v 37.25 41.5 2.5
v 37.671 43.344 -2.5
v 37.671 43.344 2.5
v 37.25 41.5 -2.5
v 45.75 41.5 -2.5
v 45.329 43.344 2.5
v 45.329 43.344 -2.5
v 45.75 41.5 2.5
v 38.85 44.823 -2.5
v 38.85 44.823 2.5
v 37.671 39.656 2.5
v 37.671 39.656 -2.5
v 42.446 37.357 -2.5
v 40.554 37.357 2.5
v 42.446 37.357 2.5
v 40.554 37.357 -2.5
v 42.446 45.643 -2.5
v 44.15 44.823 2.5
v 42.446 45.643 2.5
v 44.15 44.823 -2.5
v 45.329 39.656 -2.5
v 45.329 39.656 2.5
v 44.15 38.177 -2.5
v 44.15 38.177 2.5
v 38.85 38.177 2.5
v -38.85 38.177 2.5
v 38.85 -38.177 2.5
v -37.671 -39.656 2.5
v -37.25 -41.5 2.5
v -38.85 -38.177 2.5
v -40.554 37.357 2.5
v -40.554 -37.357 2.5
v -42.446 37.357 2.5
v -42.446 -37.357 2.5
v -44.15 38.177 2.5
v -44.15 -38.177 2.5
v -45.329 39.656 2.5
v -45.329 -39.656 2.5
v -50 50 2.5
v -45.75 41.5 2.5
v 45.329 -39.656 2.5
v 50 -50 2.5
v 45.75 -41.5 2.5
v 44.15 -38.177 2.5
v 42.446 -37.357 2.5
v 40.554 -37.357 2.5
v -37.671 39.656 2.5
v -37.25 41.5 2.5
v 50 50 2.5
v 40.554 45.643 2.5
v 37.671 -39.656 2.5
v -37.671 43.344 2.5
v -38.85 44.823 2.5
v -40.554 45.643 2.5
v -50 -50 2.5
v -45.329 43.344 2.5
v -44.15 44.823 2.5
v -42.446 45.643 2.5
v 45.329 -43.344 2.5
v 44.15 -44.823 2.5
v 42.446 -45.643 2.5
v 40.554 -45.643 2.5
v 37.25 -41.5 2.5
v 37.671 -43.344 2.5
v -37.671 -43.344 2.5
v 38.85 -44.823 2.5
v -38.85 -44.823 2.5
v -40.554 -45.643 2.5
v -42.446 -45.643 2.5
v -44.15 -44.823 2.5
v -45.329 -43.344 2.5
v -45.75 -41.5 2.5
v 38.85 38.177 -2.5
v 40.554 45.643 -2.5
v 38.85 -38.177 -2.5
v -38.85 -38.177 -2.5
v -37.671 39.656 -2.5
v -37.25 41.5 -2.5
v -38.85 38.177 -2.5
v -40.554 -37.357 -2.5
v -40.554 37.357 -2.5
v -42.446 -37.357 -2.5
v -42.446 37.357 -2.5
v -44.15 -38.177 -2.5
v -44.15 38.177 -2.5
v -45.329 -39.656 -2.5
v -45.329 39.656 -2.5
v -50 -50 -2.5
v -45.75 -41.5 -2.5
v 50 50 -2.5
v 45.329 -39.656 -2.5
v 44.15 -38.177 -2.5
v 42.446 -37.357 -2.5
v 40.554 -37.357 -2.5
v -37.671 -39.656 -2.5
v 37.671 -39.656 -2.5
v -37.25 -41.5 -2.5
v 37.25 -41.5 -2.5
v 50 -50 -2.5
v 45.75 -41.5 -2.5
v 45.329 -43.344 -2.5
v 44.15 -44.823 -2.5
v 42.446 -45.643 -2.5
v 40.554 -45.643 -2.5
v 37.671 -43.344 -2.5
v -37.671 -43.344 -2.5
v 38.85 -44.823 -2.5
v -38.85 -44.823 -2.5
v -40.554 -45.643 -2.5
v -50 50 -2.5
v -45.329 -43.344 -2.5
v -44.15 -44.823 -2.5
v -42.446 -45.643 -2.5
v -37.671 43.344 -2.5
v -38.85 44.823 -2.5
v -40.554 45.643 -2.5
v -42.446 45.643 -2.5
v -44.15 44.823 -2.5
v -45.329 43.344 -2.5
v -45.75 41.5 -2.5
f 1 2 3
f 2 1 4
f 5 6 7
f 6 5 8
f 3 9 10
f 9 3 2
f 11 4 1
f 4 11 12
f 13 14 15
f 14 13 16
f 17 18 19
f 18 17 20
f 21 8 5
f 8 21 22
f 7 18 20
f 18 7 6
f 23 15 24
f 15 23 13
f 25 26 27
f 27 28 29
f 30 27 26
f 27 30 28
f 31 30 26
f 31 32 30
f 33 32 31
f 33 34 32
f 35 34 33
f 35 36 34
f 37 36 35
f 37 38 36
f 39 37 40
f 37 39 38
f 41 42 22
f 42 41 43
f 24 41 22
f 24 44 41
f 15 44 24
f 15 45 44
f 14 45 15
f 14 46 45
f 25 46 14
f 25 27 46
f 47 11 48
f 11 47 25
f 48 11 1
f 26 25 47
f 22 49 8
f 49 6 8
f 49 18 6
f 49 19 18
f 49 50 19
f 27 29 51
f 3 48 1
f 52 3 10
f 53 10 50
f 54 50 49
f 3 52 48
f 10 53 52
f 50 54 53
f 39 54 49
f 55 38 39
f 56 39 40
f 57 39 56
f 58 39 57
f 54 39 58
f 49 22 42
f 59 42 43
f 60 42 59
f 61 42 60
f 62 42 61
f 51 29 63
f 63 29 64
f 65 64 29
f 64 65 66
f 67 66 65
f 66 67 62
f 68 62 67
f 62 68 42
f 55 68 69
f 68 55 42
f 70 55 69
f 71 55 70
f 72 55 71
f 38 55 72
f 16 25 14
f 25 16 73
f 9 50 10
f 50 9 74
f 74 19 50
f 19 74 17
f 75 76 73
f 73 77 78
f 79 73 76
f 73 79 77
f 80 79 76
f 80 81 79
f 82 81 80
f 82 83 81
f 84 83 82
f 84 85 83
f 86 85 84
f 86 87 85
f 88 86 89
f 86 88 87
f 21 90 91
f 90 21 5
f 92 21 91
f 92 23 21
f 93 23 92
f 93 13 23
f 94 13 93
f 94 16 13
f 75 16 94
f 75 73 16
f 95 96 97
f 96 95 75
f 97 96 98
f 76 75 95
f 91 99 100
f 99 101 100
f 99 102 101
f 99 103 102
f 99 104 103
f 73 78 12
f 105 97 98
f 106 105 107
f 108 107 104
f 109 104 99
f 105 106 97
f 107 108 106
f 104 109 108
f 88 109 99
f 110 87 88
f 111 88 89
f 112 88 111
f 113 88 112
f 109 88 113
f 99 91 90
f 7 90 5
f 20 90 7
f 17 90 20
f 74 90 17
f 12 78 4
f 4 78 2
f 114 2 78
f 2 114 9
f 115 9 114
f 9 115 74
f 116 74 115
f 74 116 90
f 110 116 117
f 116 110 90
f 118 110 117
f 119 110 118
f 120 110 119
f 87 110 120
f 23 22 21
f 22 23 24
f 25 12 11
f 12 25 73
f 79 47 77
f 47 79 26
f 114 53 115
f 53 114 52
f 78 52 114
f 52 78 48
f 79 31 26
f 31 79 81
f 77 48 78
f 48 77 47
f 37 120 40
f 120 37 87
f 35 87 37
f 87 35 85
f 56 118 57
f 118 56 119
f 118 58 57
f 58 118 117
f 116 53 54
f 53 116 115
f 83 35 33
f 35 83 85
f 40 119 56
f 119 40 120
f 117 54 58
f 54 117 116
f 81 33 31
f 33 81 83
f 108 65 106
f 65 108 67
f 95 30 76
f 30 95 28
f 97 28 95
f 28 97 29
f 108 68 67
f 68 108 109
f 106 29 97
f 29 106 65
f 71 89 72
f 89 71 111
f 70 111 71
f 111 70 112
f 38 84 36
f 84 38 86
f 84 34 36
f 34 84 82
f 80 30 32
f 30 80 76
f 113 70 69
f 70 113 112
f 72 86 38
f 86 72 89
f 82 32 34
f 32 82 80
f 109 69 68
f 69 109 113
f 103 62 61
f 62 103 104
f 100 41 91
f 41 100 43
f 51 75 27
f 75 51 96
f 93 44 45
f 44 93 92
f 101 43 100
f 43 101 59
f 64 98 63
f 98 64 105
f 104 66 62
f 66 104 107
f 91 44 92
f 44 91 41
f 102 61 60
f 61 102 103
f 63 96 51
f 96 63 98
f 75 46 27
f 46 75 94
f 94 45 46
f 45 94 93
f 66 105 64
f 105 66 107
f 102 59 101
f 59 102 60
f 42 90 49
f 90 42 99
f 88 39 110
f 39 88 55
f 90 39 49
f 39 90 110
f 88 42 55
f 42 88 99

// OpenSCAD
// Generated by SolidPython 1.1.3 on 2023-10-16 12:08:39


difference() {
	cube(center = true, size = [100, 100, 5]);
	union() {
		translate(v = [41.5000000000, 41.5000000000]) {
			cylinder(center = true, h = 5, r = 4.2500000000);
		}
		translate(v = [-41.5000000000, 41.5000000000]) {
			cylinder(center = true, h = 5, r = 4.2500000000);
		}
		translate(v = [-41.5000000000, -41.5000000000]) {
			cylinder(center = true, h = 5, r = 4.2500000000);
		}
		translate(v = [41.5000000000, -41.5000000000]) {
			cylinder(center = true, h = 5, r = 4.2500000000);
		}
	}
}
/***********************************************
*********      SolidPython code:      **********
************************************************
 
import solid
import numbers
import pudb
from solid.utils import *
import viewscad
import subprocess
import os
import os.path as osp
import math
import sys

chamfer_extrude=solid.import_scad("./chamfer_extrude.scad")
chamfer_extrude=chamfer_extrude.chamfer_extrude
r = viewscad.Renderer(width=800, height=800)

def debug(model,f_name,path="/home/ts/code/projects/mfd/designs/debug"):
    solid.scad_render_to_file(model,osp.join(path,f_name)+".scad")
#generate position list of wells using offset from center
wells_pos_from_center_4 = lambda offset: [[-offset,offset],
                                        [offset, offset],
                                        [-offset, -offset],
                                        [offset, -offset]]
#wells_pos_from_center_2 = lambda offset: [[0,offset],
#                                        [0, -offset]]
wells_pos_from_center_2 = lambda offset: [[offset,0],
                                        [-offset,0]]

def make_well(dims,shape=None,height=None,dxf=False):
    def circle_cylinder():
        if dxf or (height is None):
            well = solid.circle(r=dims, segments=64)
        else:
            well = solid.cylinder(r=dims, h=height, segments=64, center = True)
        return well
    if dims is None:
        sys.exit("radius needs to be a number")
    if isinstance(dims, numbers.Number):
        well =circle_cylinder()
    elif len(dims)==1:
        if isinstance(dims[1], numbers.Number):
            well =circle_cylinder()
        else:
            sys.exit("radius needs to be a number")
    elif len(dims)==2:
        well = solid.square(dims,center = True)
    elif len(dims)==3:
        well = solid.cube(dims, center = True)
    return well

def wells_top_bottom(center_gap,device_dims=None,shape=None,height=None, positions = None, dxf = False):
    well_shape = make_well(device_dims,shape=shape,height=height,dxf=dxf)
    wells = []
    if positions is None:
        offset = radius+radius/2.0
        positions = wells_pos_from_center_2(offset)
    if dxf or (height is None):
        height = 0
    for position in positions:
        if dxf:
            wells.append(solid.translate([position[0],position[1]])(well_shape))
        else:
            wells.append(solid.translate([position[0],position[1],height/2.0])(well_shape))
    return  union()(*wells)

#place wells in four corners 
def four_corner(radius,height=None, positions = None, dxf = False):
    #if well pos not specified set
    #to equally spaced by half radius
    if positions is None:
        offset = radius+radius/2.0
        positions = wells_pos_from_center_4(offset)
    if dxf or (height is None):
        height = 0
    #make wells at positions with specified radius and height
    wells = []
    for position in positions:
        #make circle if making dxf
        if dxf:
            well_shape = solid.circle(r=radius, segments=64)
            well_shape = solid.translate([position[0],position[1]])(well_shape)
        #if stl make cylinder
        else:
            well_shape = solid.cylinder(r=radius, h=height, segments=64, center = True)
            well_shape = solid.translate([position[0],position[1],height/2.0])(well_shape)
        wells.append(well_shape)
    return  union()(*wells)

#generate channels 
def make_channels(length,width,height=0,num_chans=1,max_chans=None,spacing=None, dxf = False,
                  rotate_channels=False):
    if dxf or (height is None):
        height = 0
    #if channel gap not defined, is equal to
    if spacing is None: spacing = width
    #calculate number of channels if fitting max num within given width
    if not max_chans is None:
        import math
        num_chans = math.floor((max_chans-spacing)/(width+spacing))
    #get total width of channel section  
    total_width = (width*num_chans)+(spacing*(num_chans-1))

    #make template channel
    #if rotate_channels: width, length = length, width
    if dxf:
        channel_t = solid.square([length,width],center = True)
    else:
        channel_t = solid.cube([length,width,height], center = True)

    #if number channels is even, offset the first channel to center its gap
    if num_chans % 2 == 0: centering = -(width/2.0+spacing/2.0)
    else: centering = 0
    #move template channel up to align bottom at z = 0 
    #and offset center if necessary
    if dxf:
        channel_t = solid.translate([0,centering])(channel_t)
    else:
        channel_t = solid.translate([0,centering,height/2.0])(channel_t)

    #if rotate_channels: length,width = width,length
    #start making the channels
    channels = []
    for i in range(num_chans):
        #if i=0 there is no translation
        #if i=1, we make the first channel adjacent to second
        direction = i

        #if i>=1, we add channels alternating left and right
        if i >= 1:
            direction = -(i/2.0)
            if i % 2 == 1: direction = (-direction)+0.5
                
        #make channel at right position and add it to channel list
        translation_coords = [0,direction*(width+spacing)]
        #if rotate_channels: translation_coords = [direction*(width+spacing),0]
        if dxf:
            channel = solid.translate(translation_coords)(channel_t)
        else:
            channel = solid.translate([*translation_coords,0])(channel_t)
        channels.append(channel)
    
    #group all channels as one object
    channels = union()(*channels)
    #compute the x,y,z dimensions in order to pass as arguments 
    #for construction of other parts of device (such as the chambers)
    measurements = {'x':(length/2.0,-length/2.0),
                    'y':(total_width/2.0,-total_width/2.0)}
    if not dxf:
        measurements['z'] = (height,0)
    if rotate_channels:
        channels = solid.rotate(90)(channels)
        measurements['x'],measurements['y']=measurements['y'],measurements['x']
    return channels,measurements

def make_chambers(msrs,height=None,extra=0,len_until=None,width=None, dxf = False):
    #computes x,y,z length
    total = lambda x : abs(x[0]) + abs(x[1])
    
    #if specific height if specified
    #otherwise use same height as channels
    if dxf:
        pass
    elif not height is None:
        msrs['z'] = (height,0)
    else:
        msrs['z'] = (0,0)
        
    #make copy of measurements from channels to modify chamber dimensions 
    #and add length to chambers as specified
    chamber_dims = msrs.copy()
    #calculate length of chamber to reach specified offset
    if not len_until is None:
        chamber_len = len_until-(msrs['x'][0])
    #or add specified length to channel length (if not specified, adds 0)
    else:
        chamber_len = msrs['x'][0]+extra
    #set the chamber length based 
    chamber_dims['x'] = (chamber_len/2.0,-(chamber_len/2.0))
    #compute final dimensions of chamber
    if not width is None:
        chamber_dims['y'] = (width/2.0,-width/2.0)
    chamber_dims = [total(size) for size in chamber_dims.values()]
        
    #calculate chamber translation offset to place adjacent to channels
    chamber_trslt = msrs['x'][0]+(chamber_len/2.0)
    #compute chamber translation coordinates to align with channels
    #x = 1 moves chamber above channels
    #x = -1 moves chamber below channels
    if dxf:
        trslt = lambda x : [x*(chamber_trslt),0]
    else:
        trslt = lambda x : [x*(chamber_trslt),0,msrs['z'][0]/2.0]
    
    #function to make chamber at top or at bottom 
    if dxf:
        move = lambda x : solid.translate(trslt(x))(solid.square(chamber_dims, center = True) )
    else:
        move = lambda x : solid.translate(trslt(x))(solid.cube(chamber_dims,center = True))
    #make top and bottom chambers and return them as grouped
    top = move(1)
    bottom = move(-1)
    #chambers=solid.rotate(90)(solid.union()(top,bottom))
    chambers=(solid.union()(top,bottom))

    return chambers

#create alignment features 
def alignment_features(unit,dims,grid_size, mask_size = None, alignment = "hollow", units_from_center = (2.5,2.5), corner_len=None):
    width = grid_size[0]*dims[0]
    length = grid_size[1]*dims[1]
    if mask_size is None and corner_len is None:
        corner_len = (dims[0] + dims[1]) /2 / 8
    corner = lambda thickness_div : solid.union()( solid.square([corner_len,corner_len/thickness_div],center=False), solid.square([corner_len/thickness_div,corner_len],center=False) )
    
    def make_full(thickness_div):
        thickness = corner_len/thickness_div
        tr = solid.translate([0, 0, 0 ])(solid.rotate(180)(corner(thickness_div)))
        tr = solid.translate([thickness/2,thickness/2,0])(tr)
        bl = solid.translate([0, 0, 0 ])(solid.rotate(0)(corner(thickness_div)))
        bl = solid.translate([-thickness/2,-thickness/2,0])(bl)
        return solid.union()(tr,bl)
    
    def make_hollow(thickness_div):
        thickness = corner_len/(thickness_div/2)
        inner = make_full(thickness_div)
        outer = make_full(thickness_div/2)
        hollow = outer - inner 
        return hollow
    
    center = (width /2 , length/2)
    mask_pos = lambda x,y : (center[0] + x*(float(units_from_center[0])*dims[0]), center[1] + y*(float(units_from_center[1])*dims[1]))
    positions = []
    positions.append(mask_pos(1,0))
    positions.append(mask_pos(0,1))
    positions.append(mask_pos(-1,0))
    positions.append(mask_pos(0,-1))
    make_mask = lambda mtype : make_hollow(8) if mtype == "hollow" else make_full(8)
    masks = [ solid.translate([*position,0])(make_mask(alignment)) for position in positions]
    
    solid.scad_render_to_file(solid.union()(*masks),"./designs/open_chamber/masks.scad")
    #return unit - solid.union()(*masks)
    return solid.union()(*masks,unit)

def create_outline(thickness, array, dims, grid_size,):
    width = grid_size[0]*dims[0] + thickness *2
    length = grid_size[1]*dims[1] + thickness *2
    outer = solid.translate([-thickness, -thickness,0])(solid.square([width, length]))
    return outer-array

def create_wall(wall_thickness, outline_thickness, dims, grid_size, wall_height = 2000, dxf = False):
    inner_width = grid_size[0]*dims[0] + outline_thickness *2
    inner_length = grid_size[1]*dims[1] + outline_thickness *2
    outer_width = inner_width + wall_thickness * 2
    outer_length = inner_length + wall_thickness * 2
    outer_pos_x = -outline_thickness-wall_thickness
    outer_pos_y = -outline_thickness-wall_thickness
    inner_pos_x = -outline_thickness
    inner_pos_y = -outline_thickness
    if dxf:
        inner_wall = solid.translate([inner_pos_x,
                                      inner_pos_y,
                                      0])(solid.square([inner_width, inner_length]))
        outer_wall = solid.translate([outer_pos_x,
                                      outer_pos_y,
                                      0])(solid.square([outer_width, outer_length]))

        return outer_wall-inner_wall
    else:
        inner_wall = solid.translate([inner_pos_x,
                                      inner_pos_y,
                                      0])(solid.cube([inner_width, inner_length,wall_height]))
        outer_wall = solid.translate([outer_pos_x,
                                      outer_pos_y,
                                      0])(solid.cube([outer_width, outer_length,wall_height]))

        return outer_wall-inner_wall, {'wall_height': wall_height,
                                       'wall_thickness': wall_thickness,
                                       'inner_width':inner_width,
                                       'inner_length': inner_length,
                                       'outer_width': outer_width,
                                       'outer_length': outer_length,
                                       'outer_pos_x' : outer_pos_x,
                                       'outer_pos_y' : outer_pos_y,
                                       'inner_pos_x' : inner_pos_x,
                                       'inner_pos_y' : inner_pos_y}

def create_thicker_wall(wall_thickness, outer_wall_offset, wall_dims, dims, grid_size, height_start = .2, height_end=2, dxf = False):
    addon_wall,thicker_wall_dims = create_wall(wall_thickness, outer_wall_offset, dims, grid_size, wall_height=height_end-height_start, dxf = False)
    addon_wall = solid.translate([0,0,height_start])(addon_wall)

    thicker_wall_dims['wall_height'] = height_end
    thicker_wall_dims['wall_thickness'] = wall_dims['wall_thickness'] + wall_thickness
    return addon_wall, thicker_wall_dims
 
def add_lock_to_wall(wall,wall_dims,y_offset = 0,cut_ratio=0.7,L_length=3, gap_ratio=0.05, axis="x",width_ratio=1/2):
    # Makes L shape
    def make_L(max_length,length_thickness,max_width,width_thickness,height,y_offset):
        length = solid.cube([max_length,length_thickness,height])
        width = solid.cube([width_thickness,max_width,height])
        width = solid.translate([max_length-(width_thickness),0,0])(width)
        L = solid.union()(width,length)
        debug(L,"L")
        if axis == "x":
            L = solid.rotate(-90)(L)
            L = solid.translate([0,max_length,0])(L)
        else:
            L = solid.rotate(-180)(L)
            L = solid.translate([max_length,max_width,0])(L)
        return solid.translate([0,0,y_offset])(L)
    
    lock_length = L_length
    lock_width = wall_dims['wall_thickness']*width_ratio
    lock_length_thickness = lock_width/2
    lock_width_thickness = lock_width/2
    L_lock = make_L(lock_length,lock_length_thickness,lock_width,lock_width_thickness, wall_dims['wall_height']-y_offset, y_offset)
    
    margin_space = lock_length - lock_length*(1-gap_ratio)
    key_length = lock_length-margin_space
    key_length_thickness = lock_length_thickness-(margin_space*2)
    key_width = lock_width-(margin_space*2)
    key_width_thickness = lock_width_thickness-(margin_space*2)
    L_key = make_L(key_length,key_length_thickness,key_width,key_width_thickness, wall_dims['wall_height']-y_offset, y_offset)
    L_key = solid.translate([margin_space,margin_space,0])(L_key)
    L = solid.union()(L_lock,L_key)
    debug(L,"L")
    
    #Make cube to be used as negative to split frame in a half
    #Can choose if making left or right negative, specify ratio of split
    def make_negative(right,cut_ratio):
        if axis == "x":
            if right:
                length = wall_dims['outer_length']*(1-cut_ratio)
                pos_x = wall_dims['outer_pos_x']+(wall_dims['outer_length']*cut_ratio)
            else:
                length = wall_dims['outer_length']*(cut_ratio)
                pos_x = wall_dims['outer_pos_x'] 
            negative = solid.cube([wall_dims['outer_width'],length, wall_dims['wall_height']])
            negative = solid.translate([wall_dims['outer_pos_y'],pos_x,0])(negative)
        else:
            if right:
                length = wall_dims['outer_width']*(1-cut_ratio)
                pos_x = wall_dims['outer_pos_y']+(wall_dims['outer_width']*cut_ratio)
            else:
                length = wall_dims['outer_width']*(cut_ratio)
                pos_x = wall_dims['outer_pos_y'] 
            negative = solid.cube([length,wall_dims['outer_length'], wall_dims['wall_height']])
            negative = solid.translate([pos_x,wall_dims['outer_pos_x'],0])(negative)
        return negative, pos_x, length 
                      
    #Make negatives
    negative_right, right_half_pos_x, right_half_length = make_negative(True,cut_ratio)
    negative_left, left_half_pos_x, right_half_length = make_negative(False,cut_ratio)
    #Make halves
    left_half = solid.difference()(wall,negative_right)
    right_half = solid.difference()(wall,negative_left)
    def place_L(L, L_length,L_width):
        #Place L on top wall       
        offset_to_center = (wall_dims['wall_thickness']-L_width)/2
        if axis == "x":
            y_pos_top = (wall_dims['outer_pos_y'] +
                    wall_dims['outer_width'] - 
                    L_width - offset_to_center)
            top_L = solid.translate([y_pos_top,
                                     right_half_pos_x-(L_length),
                                     0])(L)
            #Place L on bottom wall       
            y_pos_bottom = wall_dims['outer_pos_y']+offset_to_center
            bottom_L = solid.translate([y_pos_bottom,
                                        right_half_pos_x-L_length,
                                        0])(L)
        else:
            y_pos_top = (wall_dims['outer_pos_x'] +
                    wall_dims['outer_length'] -
                    (L_width+offset_to_center))
            top_L = solid.translate([right_half_pos_x-L_length,
                                     y_pos_top,
                                     0])(L)
            #Place L on bottom wall       
            y_pos_bottom = wall_dims['outer_pos_y']+offset_to_center
            bottom_L = solid.translate([right_half_pos_x-L_length,
                                        y_pos_bottom,
                                        0])(L)
        return bottom_L, top_L
    #Make complimentary L pieces through union and differences
    #Make Lock
    bottom_L_lock, top_L_lock = place_L(L_lock,L_length,lock_width)
    left_half = solid.difference()(left_half,bottom_L_lock)
    left_half = solid.difference()(left_half,top_L_lock)
    #Make Key
    bottom_L_key, top_L_key = place_L(L_key,L_length,lock_width)
    right_half = solid.union()(right_half,bottom_L_key)
    right_half = solid.union()(right_half,top_L_key)
    return left_half, right_half


#build a row x col grid of containment units
def make_unit_array(unit,dims,grid_size, dxf = False, alignment = None, mask_size = None,
                    units_from_center = None,alignment_offset=None, alignment_mark_size=1):
    units = []
    for col in range(grid_size[1]):
        for row in range(grid_size[0]):
            if dxf:
                units.append(solid.translate([row*dims[0],col*dims[1]])(unit))
            else:
                units.append(solid.translate([row*dims[0],col*dims[1],dims[2]/2.0])(unit))
    array = solid.union()(*units)
    if (not alignment is None) and dxf:
        if not alignment_offset is None:
            array = solid.translate([alignment_offset[0],alignment_offset[1]])(array)
        array = alignment_features(array,dims, grid_size, alignment = alignment, mask_size = None, units_from_center = units_from_center,corner_len=alignment_mark_size)
        if not alignment_offset is None:
            array = solid.translate([-alignment_offset[0],-alignment_offset[1]])(array)
    return array


def make_taylor(wells_pos = wells_pos_from_center_4(2.25), well_rad = 1.5 ,
                well_height = 2, chan_w = 0.01, chan_l = 1, chan_h = 0.010 ,
                chan_gap = 0.040, max_chans = None,num_chans=100, chamber_height  = 0.100,
                columns = 1, rows = 1, chamber_len_until=2.25, add_channels = True, add_wells = True, 
                add_chambers = True, save_path = "./", alignment = None, units_from_center = 2,
                mask_size = None, render_stl = False, outline_thickness = 0.050, dxf = True,
                wall_height = 15, wall_thickness = 0.95, casing_x=9, casing_y=9, casing_z=0,rotate_units=0):

    dims = [casing_x, casing_y, casing_z]
    wells = four_corner(well_rad,well_height, dxf = dxf, positions = wells_pos)
    debug(wells,"wells")
    channels, msrs = make_channels(chan_l,chan_w,chan_h,dxf=dxf, spacing = chan_gap, max_chans=max_chans,num_chans=num_chans)
    debug(channels,"channels")
    chambers = make_chambers(msrs,dxf = dxf, height=chamber_height,len_until=chamber_len_until)
    debug(chambers,"chambers")

    #add together and render
    device_parts = []
    if add_channels:
        device_parts.append(channels)
    if add_wells:
        device_parts.append(wells)
    if add_chambers:
        device_parts.append(chambers)
    device=union()(*device_parts)
    device = rotate(rotate_units)(device)

    device=solid.translate([dims[0]/2.0,dims[1]/2.0,0])(device)
    channels = rotate(rotate_units)(channels)
    channels=solid.translate([dims[0]/2,dims[1]/2,0])(channels)
    chambers_wells = union()(wells,chambers)
    chambers_wells = rotate(rotate_units)(chambers_wells)
    chambers_wells=solid.translate([dims[0]/2,dims[1]/2,0])(chambers_wells)

    file_name = str(rows)+'x'+str(columns)+'_units_'
    grid_size = [rows,columns]

    if alignment:
        alignment="full"
    device = make_unit_array(device,dims,grid_size, dxf=dxf, alignment = alignment,
                                 units_from_center = units_from_center)
    channels = make_unit_array(channels,dims,grid_size, dxf=dxf, alignment = alignment,
                                 units_from_center = units_from_center)
    if alignment=="full":
        alignment="hollow"

    chambers_wells = make_unit_array(chambers_wells,dims,grid_size, dxf=dxf, alignment = alignment,
                                 units_from_center =units_from_center)

    def save_model(model,prefix):
        model_fname = os.path.abspath(save_path+prefix+"_"+file_name+".scad")
        solid.scad_render_to_file(model,model_fname)
        return model_fname

    wells_fname = save_model(wells,"wells")
    channels_fname = save_model(channels,"channels")
    device_fname = save_model(device,"device")
    chambers_wells_fname = save_model(chambers_wells,"chambers_wells")
    return (chambers_wells,chambers_wells_fname), (channels,channels_fname), (device,device_fname)

def make_device(design='open',rows=8,columns=6,wells_pos = 4.5,well_offset=3.2, well_rad=3.2,well_height=0.1,
                chan_l=1,chan_w=0.01,chan_h=0.01,chan_gap=0.015,num_chans=101,dxf=True,save_path="./designs/open_chamber/",
                casing_x=9.0,casing_y=18.0,casing_z=0,rotate_units=90,units_from_center=(3,1),chamber_len_until=4.5,
                chamber_width=None,alignment=True, add_wells=True, add_channels=True,add_chambers=True):

    dims = [casing_x, casing_y, casing_z]
    if design == "open":
        wells_pos=wells_pos_from_center_2(wells_pos)
        wells = wells_top_bottom(well_offset*2,device_dims=well_rad,height=well_height, dxf = dxf, positions = wells_pos)
    elif design == "closed":
        wells_pos=wells_pos_from_center_4(wells_pos)
        debug(wells,"wells")
        wells = four_corner(well_offset,well_heightdevice_dims=well_rad, dxf = dxf, positions = wells_pos)
    else:
        print(design+" is not a valid design.\n Choose valid design: 'open' or 'closed'")
        exit()
    wells = rotate(rotate_units)(wells)
    wells=solid.translate([dims[0]/2,dims[1]/2,0])(wells)
    debug(wells,"wells")

    channels, msrs = make_channels(chan_l,chan_w,chan_h,dxf=dxf, spacing = chan_gap, num_chans=num_chans,rotate_channels=False)
    channels = rotate(rotate_units)(channels)
    channels=solid.translate([dims[0]/2,dims[1]/2,0])(channels)

    chambers=make_chambers(msrs,height=None,extra=0,len_until=chamber_len_until, width=chamber_width,dxf = dxf)
    chambers = rotate(rotate_units)(chambers)
    chambers=solid.translate([dims[0]/2,dims[1]/2,0])(chambers)

    device_parts = []
    if add_channels:
        device_parts.append(channels)
    if add_wells:
        device_parts.append(wells)
    if add_chambers:
        device_parts.append(chambers)
    device = union()(*device_parts)
    #device = rotate(rotate_units)(device)
    #device=solid.translate([dims[0]/2.0,dims[1]/2.0,0])(device)

    chambers_wells = []
    if add_chambers:
        chambers_wells.append(chambers)
    if add_wells:
        chambers_wells.append(wells)
    chambers_wells = union()(*chambers_wells)
    #chambers_wells = union()(wells,chambers)
    #chambers_wells = rotate(rotate_units)(chambers_wells)
    #chambers_wells=solid.translate([dims[0]/2,dims[1]/2,0])(chambers_wells)

    file_name = str(rows)+'x'+str(columns)+'_units_'

    grid_size = [rows,columns]
    if alignment:
        alignment="full"
    device = make_unit_array(device,dims,grid_size, dxf=dxf, alignment = alignment,
                                 units_from_center = units_from_center)
    channels = make_unit_array(channels,dims,grid_size, dxf=dxf, alignment = alignment,
                                 units_from_center = units_from_center)
    if alignment=="full":
        alignment="hollow"

    chambers_wells = make_unit_array(chambers_wells,dims,grid_size, dxf=dxf, alignment = alignment,
                                 units_from_center =units_from_center)

    def save_model(model,prefix):
        model_fname = os.path.abspath(save_path+prefix+"_"+file_name+".scad")
        solid.scad_render_to_file(model,model_fname)
        return model_fname

    wells_fname = save_model(wells,"wells")
    channels_fname = save_model(channels,"channels")
    device_fname = save_model(device,"device")
    chambers_wells_fname = save_model(chambers_wells,"chambers_wells")
    return (chambers_wells,chambers_wells_fname), (channels,channels_fname), (device,device_fname)


def make_open_chamber(rows=8,columns=6,wells_pos = wells_pos_from_center_2(4.5), well_rad=3.2,well_height=0.1,
                      chan_l=1,chan_w=0.01,chan_h=0.01,chan_gap=0.015,num_chans=101,dxf=True,save_path="./designs/open_chamber/",
                      casing_x=9.0,casing_y=18.0,casing_z=0,rotate_units=90,units_from_center=(3,1),chamber_len_until=4.5,
                      chamber_width=None,alignment=True, add_wells=True, add_channels=True,add_chambers=True):

    dims = [casing_x, casing_y, casing_z]
    wells = wells_top_bottom(well_rad,height=well_height, dxf = dxf, positions = wells_pos)
    channels, msrs = make_channels(chan_l,chan_w,chan_h,dxf=dxf, spacing = chan_gap, num_chans=num_chans,rotate_channels=False)
    chambers=make_chambers(msrs,height=None,extra=0,len_until=chamber_len_until, width=chamber_width,dxf = dxf)
    debug(chambers,"chambers")
    device_parts = []
    if add_channels:
        device_parts.append(channels)
    if add_wells:
        device_parts.append(wells)
    if add_chambers:
        device_parts.append(chambers)
    device = union()(*device_parts)
    device = rotate(rotate_units)(device)
    device=solid.translate([dims[0]/2.0,dims[1]/2.0,0])(device)
    channels = rotate(rotate_units)(channels)
    channels=solid.translate([dims[0]/2,dims[1]/2,0])(channels)
    chambers_wells = union()(wells,chambers)
    chambers_wells = rotate(rotate_units)(chambers_wells)
    chambers_wells=solid.translate([dims[0]/2,dims[1]/2,0])(chambers_wells)

    file_name = str(rows)+'x'+str(columns)+'_units_'

    grid_size = [rows,columns]
    if alignment:
        alignment="full"
    device = make_unit_array(device,dims,grid_size, dxf=dxf, alignment = alignment,
                                 units_from_center = units_from_center)
    channels = make_unit_array(channels,dims,grid_size, dxf=dxf, alignment = alignment,
                                 units_from_center = units_from_center)
    if alignment=="full":
        alignment="hollow"

    chambers_wells = make_unit_array(chambers_wells,dims,grid_size, dxf=dxf, alignment = alignment,
                                 units_from_center =units_from_center)

    def save_model(model,prefix):
        model_fname = os.path.abspath(save_path+prefix+"_"+file_name+".scad")
        solid.scad_render_to_file(model,model_fname)
        return model_fname

    wells_fname = save_model(wells,"wells")
    channels_fname = save_model(channels,"channels")
    device_fname = save_model(device,"device")
    chambers_wells_fname = save_model(chambers_wells,"chambers_wells")
    return (chambers_wells,chambers_wells_fname), (channels,channels_fname), (device,device_fname)

def to_dxf(scad_path):
    dxf_path = scad_path.replace(".scad",".dxf")
    subprocess.call(["openscad", "-o", dxf_path, scad_path])
    import ezdxf
    temp_dxf = ezdxf.readfile(dxf_path)
    temp_dxf.saveas(dxf_path)

#def make_walls(diameter,thickness,grid_size,dims,height=20,segments=256,make_inner=True):
#    wafer_wall_out = solid.cylinder(r=diameter/2,h=height, segments=segments)
#    wafer_wall_in = solid.cylinder(r=(diameter/2-thickness),h=height, segments=segments)
#    wafer_wall = solid.difference()(wafer_wall_out,wafer_wall_in)
#    wafer_wall = solid.translate([grid_size[1]*dims[1]/2.0,grid_size[0]*dims[0]/2.0])(wafer_wall)
#
#    vertical_wall_length = grid_size[1]*dims[1]
#    horizontal_wall_length = grid_size[0]*dims[0]
#    vertical_wall = solid.cube([vertical_wall_length,thickness,height],center = True)
#    vertical_wall = solid.translate([vertical_wall_length/2,0,height/2])(vertical_wall)
#    horizontal_wall = solid.cube([thickness,horizontal_wall_length,height],center = True)
#    horizontal_wall = solid.translate([0,vertical_wall_length/2,height/2])(horizontal_wall)
#    walls = []
#    walls.append(horizontal_wall)
#    walls.append(vertical_wall)
#    for col in range(grid_size[1]):
#        if col == grid_size[1]-1: 
#            walls.append(solid.translate([0,(col+1)*dims[1]])(vertical_wall))
#        elif col > 0 and col < grid_size[1]-1 and make_inner==True:
#            walls.append(solid.translate([0,(col+1)*dims[1]])(vertical_wall))
#    for row in range(grid_size[0]):
#        if row == grid_size[0]-1: 
#            walls.append(solid.translate([(row+1)*dims[0],0])(horizontal_wall))
#        elif row > 0 and row < grid_size[0]-1 and make_inner==True:
#            walls.append(solid.translate([(row+1)*dims[0],0])(horizontal_wall))
#    walls = union()(*walls)
#    wafer_walls = union()(walls,wafer_wall)
#    return walls,wafer_wall,wafer_walls

def make_walls(diameter,thickness,grid_size,dims,height=20,segments=256,make_inner=True,padx=0,pady=0):
    wafer_wall_out = solid.cylinder(r=diameter/2,h=height, segments=segments)
    wafer_wall_in = solid.cylinder(r=(diameter/2-thickness),h=height, segments=segments)
    wafer_wall = solid.difference()(wafer_wall_out,wafer_wall_in)
    wafer_wall = solid.translate([grid_size[1]*dims[1]/2.0,grid_size[0]*dims[0]/2.0])(wafer_wall)

    vertical_wall_length = grid_size[0]*dims[0]+padx
    horizontal_wall_length = grid_size[1]*dims[1]+pady
    vertical_wall = solid.cube([vertical_wall_length,thickness,height],center = True)
    vertical_wall = solid.translate([vertical_wall_length/2-pady/2,-padx/2,height/2])(vertical_wall)
    horizontal_wall = solid.cube([thickness,horizontal_wall_length,height],center = True)
    horizontal_wall = solid.translate([-pady/2,horizontal_wall_length/2-padx/2,height/2])(horizontal_wall)
    walls = []
    walls.append(horizontal_wall)
    walls.append(vertical_wall)
    for col in range(grid_size[1]):
        if col == grid_size[1]-1: 
            walls.append(solid.translate([0,(col+1)*dims[1]+pady])(vertical_wall))
        elif col > 0 and col < grid_size[1]-1 and make_inner==True:
            walls.append(solid.translate([0,(col+1)*dims[1]])(vertical_wall))
    for row in range(grid_size[0]):
        if row == grid_size[0]-1: 
            walls.append(solid.translate([(row+1)*dims[0]+padx,0])(horizontal_wall))
        elif row > 0 and row < grid_size[0]-1 and make_inner==True:
            walls.append(solid.translate([(row+1)*dims[0],0])(horizontal_wall))
    walls = union()(*walls)
    wafer_walls = union()(walls,wafer_wall)
    return walls,wafer_wall,wafer_walls

def save_model(model,base_path,base_name,dxf=True):
    if not os.path.exists(base_path):
        os.makedirs(base_path)
    dxf_path=osp.join(base_path,base_name+".scad")
    solid.scad_render_to_file(model,osp.join(dxf_path))
    if dxf:
        to_dxf(dxf_path)

def make_wafer(diameter,flat_len,thickness):
    wafer = solid.cylinder(r1=diameter/2,r2=diameter/2,h=thickness,segments=512,)()
    x_start_flat=(flat_len/2)
    y_start_flat = math.sqrt(((diameter/2)**2) - (x_start_flat**2) )
    height_delete_flat=diameter/2-y_start_flat
    flat_delete = solid.cube([flat_len,height_delete_flat,thickness],center=False)()
    flat_delete = solid.translate([-flat_len/2,y_start_flat,0])(flat_delete)
    wafer = solid.difference()(wafer,flat_delete)
    wafer = solid.rotate(90)(wafer)
    return wafer

def add_wafer_to_mask(wafer_size,flat_len,mask,grid_size,dims,wafer_line_thickness=0.1,outer_mask_thickness=5,alignment_offset=None):
    def make_wafer_mask(wafer_size,flat_len):
        wafer_mask = make_wafer(wafer_size,flat_len,1)
        wafer_mask = solid.projection()(wafer_mask)
        wafer_mask = solid.translate([grid_size[0]*dims[0]/2.0,grid_size[1]*dims[1]/2.0])(wafer_mask)
        if not alignment_offset is None:
            wafer_mask = solid.translate([-alignment_offset[0],-alignment_offset[1]])(wafer_mask)
        return wafer_mask

    inner_wafer_line_mask = make_wafer_mask(wafer_size-wafer_line_thickness/2,flat_len)
    outer_wafer_line_mask = make_wafer_mask(wafer_size+wafer_line_thickness/2,flat_len)
    outer_wafer_mask = make_wafer_mask(wafer_size+outer_mask_thickness,flat_len)
    outer_wafer_mask = solid.difference()(outer_wafer_mask,outer_wafer_line_mask)
    wafer_mask = solid.union()(outer_wafer_mask,inner_wafer_line_mask)

    return solid.difference()(wafer_mask,mask)

def make_posts(post_shape,post_height):
    posts = solid.linear_extrude(height=post_height)(post_shape)
    return posts

def make_wafer_empty(diameter,flat_len,thickness,margin,notch_len=20,notch_height=5,oversize=1.01):
    diameter*=oversize
    flat_len*=oversize
    wafer = make_wafer(diameter,flat_len,thickness)
    holder = solid.cylinder(r1=diameter/2+margin,r2=diameter/2+margin,h=thickness,segments=512)()
    holder = solid.difference()(holder,wafer)

    x_start_flat=(flat_len/2)
    y_start_flat = math.sqrt(((diameter/2)**2) - (x_start_flat**2) )
    height_delete_flat=diameter/2-y_start_flat
    notch = solid.cube([notch_len,notch_height,thickness],center=False)()
    notch = solid.translate([-notch_len/2,y_start_flat,0])(notch)
    notch = solid.rotate(90)(notch)
    return solid.difference()(holder,notch)

def wafer_print_calibration(diameter,thickness,height,z_offset):
    circles = []
    radii = []
    radii.append(diameter/2.0*0.8)
    radii.append(diameter/2.0*0.6)
    radii.append(diameter/2.0*0.4)
    radii.append(diameter/2.0*0.2)
    for radius in radii:
        inner = solid.cylinder(r1=radius-(thickness/2.0),r2=radius-(thickness/2.0),h=thickness,segments=512,)()
        outer = solid.cylinder(r1=radius+(thickness/2.0),r2=radius+(thickness/2.0),h=thickness,segments=512,)()
        diff = solid.difference()(outer,inner)
        circles.append(diff)
    circles = solid.union()(*circles)
    circles = solid.translate([0,0,z_offset])(circles)
    return circles

def make_rack(wells,dims,grid_size,alignment_offset,rack_x,rack_y,rack_thickness,bolt_width,add_bolts=True):

    #get X and Y dimensions of gride of pipette tips
    X_len = dims[0]*grid_size[0]
    Y_len = dims[1]*grid_size[1]
    #make rack
    rack = solid.cube([rack_x,rack_y,rack_thickness],center=True)

    if add_bolts:
    #add bolt holes
        bolt_hole=solid.cylinder(r=bolt_width/2,h=rack_thickness,center=True)()
        bolt_holes = []
        bolt_holes.append(solid.translate([rack_x/2-1.5*bolt_width,rack_y/2-1.5*bolt_width])(bolt_hole))
        bolt_holes.append(solid.translate([-rack_x/2+1.5*bolt_width,rack_y/2-1.5*bolt_width])(bolt_hole))
        bolt_holes.append(solid.translate([-rack_x/2+1.5*bolt_width,-rack_y/2+1.5*bolt_width])(bolt_hole))
        bolt_holes.append(solid.translate([rack_x/2-1.5*bolt_width,-rack_y/2+1.5*bolt_width])(bolt_hole))
        bolt_holes = solid.union()(*bolt_holes)
        rack=solid.difference()(rack,bolt_holes)
    rack_support = rack

    #center rack with pipette holes
    rack = solid.translate([0,0,rack_thickness/2])(rack)
    rack = solid.translate([X_len/2,Y_len/2])(rack)
    rack = solid.translate([-alignment_offset[0],-alignment_offset[1]])(rack)
    wells = solid.linear_extrude(height=rack_thickness)(wells)
    rack = solid.difference()(rack,wells)
    return rack, rack_support

def make_pillar(wells,dims,grid_size,alignment_offset,rack_x,rack_y,pillar_height,rack_thickness,bolt_width,add_bolts=True,taper_angle=1,bolt_position_corner=1.5):

    #get X and Y dimensions of gride of pipette tips
    X_len = dims[0]*grid_size[0]
    Y_len = dims[1]*grid_size[1]
    #make rack
    rack = solid.cube([rack_x,rack_y,rack_thickness],center=True)
    
    if add_bolts:
    #add bolt holes
        bolt_hole=solid.cylinder(r=bolt_width/2,h=rack_thickness,center=True)()
        bolt_holes = []
        bolt_holes.append(solid.translate([rack_x/2-bolt_position_corner*bolt_width,rack_y/2-bolt_position_corner*bolt_width])(bolt_hole))
        bolt_holes.append(solid.translate([-rack_x/2+bolt_position_corner*bolt_width,rack_y/2-bolt_position_corner*bolt_width])(bolt_hole))
        bolt_holes.append(solid.translate([-rack_x/2+bolt_position_corner*bolt_width,-rack_y/2+bolt_position_corner*bolt_width])(bolt_hole))
        bolt_holes.append(solid.translate([rack_x/2-bolt_position_corner*bolt_width,-rack_y/2+bolt_position_corner*bolt_width])(bolt_hole))
        bolt_holes = solid.union()(*bolt_holes)
        rack=solid.difference()(rack,bolt_holes)
    rack_support = rack

    #center rack with pipette holes
    #rack = solid.translate([0,0,-rack_thickness])(rack)
    rack = solid.translate([X_len/2,Y_len/2])(rack)
    rack = solid.translate([-alignment_offset[0],-alignment_offset[1]])(rack)
    if not taper_angle == 0:
        wells=chamfer_extrude(pillar_height,taper_angle,segments=20)(wells)
    else:
        wells = solid.linear_extrude(height=pillar_height)(wells)
    rack = solid.union()(rack,wells)
    return rack, rack_support

def deg_taper_len(height,deg):
    if not deg == 0:
        return height*math.tan(math.radians(deg))
    else:
        return 0









 
 
************************************************/
